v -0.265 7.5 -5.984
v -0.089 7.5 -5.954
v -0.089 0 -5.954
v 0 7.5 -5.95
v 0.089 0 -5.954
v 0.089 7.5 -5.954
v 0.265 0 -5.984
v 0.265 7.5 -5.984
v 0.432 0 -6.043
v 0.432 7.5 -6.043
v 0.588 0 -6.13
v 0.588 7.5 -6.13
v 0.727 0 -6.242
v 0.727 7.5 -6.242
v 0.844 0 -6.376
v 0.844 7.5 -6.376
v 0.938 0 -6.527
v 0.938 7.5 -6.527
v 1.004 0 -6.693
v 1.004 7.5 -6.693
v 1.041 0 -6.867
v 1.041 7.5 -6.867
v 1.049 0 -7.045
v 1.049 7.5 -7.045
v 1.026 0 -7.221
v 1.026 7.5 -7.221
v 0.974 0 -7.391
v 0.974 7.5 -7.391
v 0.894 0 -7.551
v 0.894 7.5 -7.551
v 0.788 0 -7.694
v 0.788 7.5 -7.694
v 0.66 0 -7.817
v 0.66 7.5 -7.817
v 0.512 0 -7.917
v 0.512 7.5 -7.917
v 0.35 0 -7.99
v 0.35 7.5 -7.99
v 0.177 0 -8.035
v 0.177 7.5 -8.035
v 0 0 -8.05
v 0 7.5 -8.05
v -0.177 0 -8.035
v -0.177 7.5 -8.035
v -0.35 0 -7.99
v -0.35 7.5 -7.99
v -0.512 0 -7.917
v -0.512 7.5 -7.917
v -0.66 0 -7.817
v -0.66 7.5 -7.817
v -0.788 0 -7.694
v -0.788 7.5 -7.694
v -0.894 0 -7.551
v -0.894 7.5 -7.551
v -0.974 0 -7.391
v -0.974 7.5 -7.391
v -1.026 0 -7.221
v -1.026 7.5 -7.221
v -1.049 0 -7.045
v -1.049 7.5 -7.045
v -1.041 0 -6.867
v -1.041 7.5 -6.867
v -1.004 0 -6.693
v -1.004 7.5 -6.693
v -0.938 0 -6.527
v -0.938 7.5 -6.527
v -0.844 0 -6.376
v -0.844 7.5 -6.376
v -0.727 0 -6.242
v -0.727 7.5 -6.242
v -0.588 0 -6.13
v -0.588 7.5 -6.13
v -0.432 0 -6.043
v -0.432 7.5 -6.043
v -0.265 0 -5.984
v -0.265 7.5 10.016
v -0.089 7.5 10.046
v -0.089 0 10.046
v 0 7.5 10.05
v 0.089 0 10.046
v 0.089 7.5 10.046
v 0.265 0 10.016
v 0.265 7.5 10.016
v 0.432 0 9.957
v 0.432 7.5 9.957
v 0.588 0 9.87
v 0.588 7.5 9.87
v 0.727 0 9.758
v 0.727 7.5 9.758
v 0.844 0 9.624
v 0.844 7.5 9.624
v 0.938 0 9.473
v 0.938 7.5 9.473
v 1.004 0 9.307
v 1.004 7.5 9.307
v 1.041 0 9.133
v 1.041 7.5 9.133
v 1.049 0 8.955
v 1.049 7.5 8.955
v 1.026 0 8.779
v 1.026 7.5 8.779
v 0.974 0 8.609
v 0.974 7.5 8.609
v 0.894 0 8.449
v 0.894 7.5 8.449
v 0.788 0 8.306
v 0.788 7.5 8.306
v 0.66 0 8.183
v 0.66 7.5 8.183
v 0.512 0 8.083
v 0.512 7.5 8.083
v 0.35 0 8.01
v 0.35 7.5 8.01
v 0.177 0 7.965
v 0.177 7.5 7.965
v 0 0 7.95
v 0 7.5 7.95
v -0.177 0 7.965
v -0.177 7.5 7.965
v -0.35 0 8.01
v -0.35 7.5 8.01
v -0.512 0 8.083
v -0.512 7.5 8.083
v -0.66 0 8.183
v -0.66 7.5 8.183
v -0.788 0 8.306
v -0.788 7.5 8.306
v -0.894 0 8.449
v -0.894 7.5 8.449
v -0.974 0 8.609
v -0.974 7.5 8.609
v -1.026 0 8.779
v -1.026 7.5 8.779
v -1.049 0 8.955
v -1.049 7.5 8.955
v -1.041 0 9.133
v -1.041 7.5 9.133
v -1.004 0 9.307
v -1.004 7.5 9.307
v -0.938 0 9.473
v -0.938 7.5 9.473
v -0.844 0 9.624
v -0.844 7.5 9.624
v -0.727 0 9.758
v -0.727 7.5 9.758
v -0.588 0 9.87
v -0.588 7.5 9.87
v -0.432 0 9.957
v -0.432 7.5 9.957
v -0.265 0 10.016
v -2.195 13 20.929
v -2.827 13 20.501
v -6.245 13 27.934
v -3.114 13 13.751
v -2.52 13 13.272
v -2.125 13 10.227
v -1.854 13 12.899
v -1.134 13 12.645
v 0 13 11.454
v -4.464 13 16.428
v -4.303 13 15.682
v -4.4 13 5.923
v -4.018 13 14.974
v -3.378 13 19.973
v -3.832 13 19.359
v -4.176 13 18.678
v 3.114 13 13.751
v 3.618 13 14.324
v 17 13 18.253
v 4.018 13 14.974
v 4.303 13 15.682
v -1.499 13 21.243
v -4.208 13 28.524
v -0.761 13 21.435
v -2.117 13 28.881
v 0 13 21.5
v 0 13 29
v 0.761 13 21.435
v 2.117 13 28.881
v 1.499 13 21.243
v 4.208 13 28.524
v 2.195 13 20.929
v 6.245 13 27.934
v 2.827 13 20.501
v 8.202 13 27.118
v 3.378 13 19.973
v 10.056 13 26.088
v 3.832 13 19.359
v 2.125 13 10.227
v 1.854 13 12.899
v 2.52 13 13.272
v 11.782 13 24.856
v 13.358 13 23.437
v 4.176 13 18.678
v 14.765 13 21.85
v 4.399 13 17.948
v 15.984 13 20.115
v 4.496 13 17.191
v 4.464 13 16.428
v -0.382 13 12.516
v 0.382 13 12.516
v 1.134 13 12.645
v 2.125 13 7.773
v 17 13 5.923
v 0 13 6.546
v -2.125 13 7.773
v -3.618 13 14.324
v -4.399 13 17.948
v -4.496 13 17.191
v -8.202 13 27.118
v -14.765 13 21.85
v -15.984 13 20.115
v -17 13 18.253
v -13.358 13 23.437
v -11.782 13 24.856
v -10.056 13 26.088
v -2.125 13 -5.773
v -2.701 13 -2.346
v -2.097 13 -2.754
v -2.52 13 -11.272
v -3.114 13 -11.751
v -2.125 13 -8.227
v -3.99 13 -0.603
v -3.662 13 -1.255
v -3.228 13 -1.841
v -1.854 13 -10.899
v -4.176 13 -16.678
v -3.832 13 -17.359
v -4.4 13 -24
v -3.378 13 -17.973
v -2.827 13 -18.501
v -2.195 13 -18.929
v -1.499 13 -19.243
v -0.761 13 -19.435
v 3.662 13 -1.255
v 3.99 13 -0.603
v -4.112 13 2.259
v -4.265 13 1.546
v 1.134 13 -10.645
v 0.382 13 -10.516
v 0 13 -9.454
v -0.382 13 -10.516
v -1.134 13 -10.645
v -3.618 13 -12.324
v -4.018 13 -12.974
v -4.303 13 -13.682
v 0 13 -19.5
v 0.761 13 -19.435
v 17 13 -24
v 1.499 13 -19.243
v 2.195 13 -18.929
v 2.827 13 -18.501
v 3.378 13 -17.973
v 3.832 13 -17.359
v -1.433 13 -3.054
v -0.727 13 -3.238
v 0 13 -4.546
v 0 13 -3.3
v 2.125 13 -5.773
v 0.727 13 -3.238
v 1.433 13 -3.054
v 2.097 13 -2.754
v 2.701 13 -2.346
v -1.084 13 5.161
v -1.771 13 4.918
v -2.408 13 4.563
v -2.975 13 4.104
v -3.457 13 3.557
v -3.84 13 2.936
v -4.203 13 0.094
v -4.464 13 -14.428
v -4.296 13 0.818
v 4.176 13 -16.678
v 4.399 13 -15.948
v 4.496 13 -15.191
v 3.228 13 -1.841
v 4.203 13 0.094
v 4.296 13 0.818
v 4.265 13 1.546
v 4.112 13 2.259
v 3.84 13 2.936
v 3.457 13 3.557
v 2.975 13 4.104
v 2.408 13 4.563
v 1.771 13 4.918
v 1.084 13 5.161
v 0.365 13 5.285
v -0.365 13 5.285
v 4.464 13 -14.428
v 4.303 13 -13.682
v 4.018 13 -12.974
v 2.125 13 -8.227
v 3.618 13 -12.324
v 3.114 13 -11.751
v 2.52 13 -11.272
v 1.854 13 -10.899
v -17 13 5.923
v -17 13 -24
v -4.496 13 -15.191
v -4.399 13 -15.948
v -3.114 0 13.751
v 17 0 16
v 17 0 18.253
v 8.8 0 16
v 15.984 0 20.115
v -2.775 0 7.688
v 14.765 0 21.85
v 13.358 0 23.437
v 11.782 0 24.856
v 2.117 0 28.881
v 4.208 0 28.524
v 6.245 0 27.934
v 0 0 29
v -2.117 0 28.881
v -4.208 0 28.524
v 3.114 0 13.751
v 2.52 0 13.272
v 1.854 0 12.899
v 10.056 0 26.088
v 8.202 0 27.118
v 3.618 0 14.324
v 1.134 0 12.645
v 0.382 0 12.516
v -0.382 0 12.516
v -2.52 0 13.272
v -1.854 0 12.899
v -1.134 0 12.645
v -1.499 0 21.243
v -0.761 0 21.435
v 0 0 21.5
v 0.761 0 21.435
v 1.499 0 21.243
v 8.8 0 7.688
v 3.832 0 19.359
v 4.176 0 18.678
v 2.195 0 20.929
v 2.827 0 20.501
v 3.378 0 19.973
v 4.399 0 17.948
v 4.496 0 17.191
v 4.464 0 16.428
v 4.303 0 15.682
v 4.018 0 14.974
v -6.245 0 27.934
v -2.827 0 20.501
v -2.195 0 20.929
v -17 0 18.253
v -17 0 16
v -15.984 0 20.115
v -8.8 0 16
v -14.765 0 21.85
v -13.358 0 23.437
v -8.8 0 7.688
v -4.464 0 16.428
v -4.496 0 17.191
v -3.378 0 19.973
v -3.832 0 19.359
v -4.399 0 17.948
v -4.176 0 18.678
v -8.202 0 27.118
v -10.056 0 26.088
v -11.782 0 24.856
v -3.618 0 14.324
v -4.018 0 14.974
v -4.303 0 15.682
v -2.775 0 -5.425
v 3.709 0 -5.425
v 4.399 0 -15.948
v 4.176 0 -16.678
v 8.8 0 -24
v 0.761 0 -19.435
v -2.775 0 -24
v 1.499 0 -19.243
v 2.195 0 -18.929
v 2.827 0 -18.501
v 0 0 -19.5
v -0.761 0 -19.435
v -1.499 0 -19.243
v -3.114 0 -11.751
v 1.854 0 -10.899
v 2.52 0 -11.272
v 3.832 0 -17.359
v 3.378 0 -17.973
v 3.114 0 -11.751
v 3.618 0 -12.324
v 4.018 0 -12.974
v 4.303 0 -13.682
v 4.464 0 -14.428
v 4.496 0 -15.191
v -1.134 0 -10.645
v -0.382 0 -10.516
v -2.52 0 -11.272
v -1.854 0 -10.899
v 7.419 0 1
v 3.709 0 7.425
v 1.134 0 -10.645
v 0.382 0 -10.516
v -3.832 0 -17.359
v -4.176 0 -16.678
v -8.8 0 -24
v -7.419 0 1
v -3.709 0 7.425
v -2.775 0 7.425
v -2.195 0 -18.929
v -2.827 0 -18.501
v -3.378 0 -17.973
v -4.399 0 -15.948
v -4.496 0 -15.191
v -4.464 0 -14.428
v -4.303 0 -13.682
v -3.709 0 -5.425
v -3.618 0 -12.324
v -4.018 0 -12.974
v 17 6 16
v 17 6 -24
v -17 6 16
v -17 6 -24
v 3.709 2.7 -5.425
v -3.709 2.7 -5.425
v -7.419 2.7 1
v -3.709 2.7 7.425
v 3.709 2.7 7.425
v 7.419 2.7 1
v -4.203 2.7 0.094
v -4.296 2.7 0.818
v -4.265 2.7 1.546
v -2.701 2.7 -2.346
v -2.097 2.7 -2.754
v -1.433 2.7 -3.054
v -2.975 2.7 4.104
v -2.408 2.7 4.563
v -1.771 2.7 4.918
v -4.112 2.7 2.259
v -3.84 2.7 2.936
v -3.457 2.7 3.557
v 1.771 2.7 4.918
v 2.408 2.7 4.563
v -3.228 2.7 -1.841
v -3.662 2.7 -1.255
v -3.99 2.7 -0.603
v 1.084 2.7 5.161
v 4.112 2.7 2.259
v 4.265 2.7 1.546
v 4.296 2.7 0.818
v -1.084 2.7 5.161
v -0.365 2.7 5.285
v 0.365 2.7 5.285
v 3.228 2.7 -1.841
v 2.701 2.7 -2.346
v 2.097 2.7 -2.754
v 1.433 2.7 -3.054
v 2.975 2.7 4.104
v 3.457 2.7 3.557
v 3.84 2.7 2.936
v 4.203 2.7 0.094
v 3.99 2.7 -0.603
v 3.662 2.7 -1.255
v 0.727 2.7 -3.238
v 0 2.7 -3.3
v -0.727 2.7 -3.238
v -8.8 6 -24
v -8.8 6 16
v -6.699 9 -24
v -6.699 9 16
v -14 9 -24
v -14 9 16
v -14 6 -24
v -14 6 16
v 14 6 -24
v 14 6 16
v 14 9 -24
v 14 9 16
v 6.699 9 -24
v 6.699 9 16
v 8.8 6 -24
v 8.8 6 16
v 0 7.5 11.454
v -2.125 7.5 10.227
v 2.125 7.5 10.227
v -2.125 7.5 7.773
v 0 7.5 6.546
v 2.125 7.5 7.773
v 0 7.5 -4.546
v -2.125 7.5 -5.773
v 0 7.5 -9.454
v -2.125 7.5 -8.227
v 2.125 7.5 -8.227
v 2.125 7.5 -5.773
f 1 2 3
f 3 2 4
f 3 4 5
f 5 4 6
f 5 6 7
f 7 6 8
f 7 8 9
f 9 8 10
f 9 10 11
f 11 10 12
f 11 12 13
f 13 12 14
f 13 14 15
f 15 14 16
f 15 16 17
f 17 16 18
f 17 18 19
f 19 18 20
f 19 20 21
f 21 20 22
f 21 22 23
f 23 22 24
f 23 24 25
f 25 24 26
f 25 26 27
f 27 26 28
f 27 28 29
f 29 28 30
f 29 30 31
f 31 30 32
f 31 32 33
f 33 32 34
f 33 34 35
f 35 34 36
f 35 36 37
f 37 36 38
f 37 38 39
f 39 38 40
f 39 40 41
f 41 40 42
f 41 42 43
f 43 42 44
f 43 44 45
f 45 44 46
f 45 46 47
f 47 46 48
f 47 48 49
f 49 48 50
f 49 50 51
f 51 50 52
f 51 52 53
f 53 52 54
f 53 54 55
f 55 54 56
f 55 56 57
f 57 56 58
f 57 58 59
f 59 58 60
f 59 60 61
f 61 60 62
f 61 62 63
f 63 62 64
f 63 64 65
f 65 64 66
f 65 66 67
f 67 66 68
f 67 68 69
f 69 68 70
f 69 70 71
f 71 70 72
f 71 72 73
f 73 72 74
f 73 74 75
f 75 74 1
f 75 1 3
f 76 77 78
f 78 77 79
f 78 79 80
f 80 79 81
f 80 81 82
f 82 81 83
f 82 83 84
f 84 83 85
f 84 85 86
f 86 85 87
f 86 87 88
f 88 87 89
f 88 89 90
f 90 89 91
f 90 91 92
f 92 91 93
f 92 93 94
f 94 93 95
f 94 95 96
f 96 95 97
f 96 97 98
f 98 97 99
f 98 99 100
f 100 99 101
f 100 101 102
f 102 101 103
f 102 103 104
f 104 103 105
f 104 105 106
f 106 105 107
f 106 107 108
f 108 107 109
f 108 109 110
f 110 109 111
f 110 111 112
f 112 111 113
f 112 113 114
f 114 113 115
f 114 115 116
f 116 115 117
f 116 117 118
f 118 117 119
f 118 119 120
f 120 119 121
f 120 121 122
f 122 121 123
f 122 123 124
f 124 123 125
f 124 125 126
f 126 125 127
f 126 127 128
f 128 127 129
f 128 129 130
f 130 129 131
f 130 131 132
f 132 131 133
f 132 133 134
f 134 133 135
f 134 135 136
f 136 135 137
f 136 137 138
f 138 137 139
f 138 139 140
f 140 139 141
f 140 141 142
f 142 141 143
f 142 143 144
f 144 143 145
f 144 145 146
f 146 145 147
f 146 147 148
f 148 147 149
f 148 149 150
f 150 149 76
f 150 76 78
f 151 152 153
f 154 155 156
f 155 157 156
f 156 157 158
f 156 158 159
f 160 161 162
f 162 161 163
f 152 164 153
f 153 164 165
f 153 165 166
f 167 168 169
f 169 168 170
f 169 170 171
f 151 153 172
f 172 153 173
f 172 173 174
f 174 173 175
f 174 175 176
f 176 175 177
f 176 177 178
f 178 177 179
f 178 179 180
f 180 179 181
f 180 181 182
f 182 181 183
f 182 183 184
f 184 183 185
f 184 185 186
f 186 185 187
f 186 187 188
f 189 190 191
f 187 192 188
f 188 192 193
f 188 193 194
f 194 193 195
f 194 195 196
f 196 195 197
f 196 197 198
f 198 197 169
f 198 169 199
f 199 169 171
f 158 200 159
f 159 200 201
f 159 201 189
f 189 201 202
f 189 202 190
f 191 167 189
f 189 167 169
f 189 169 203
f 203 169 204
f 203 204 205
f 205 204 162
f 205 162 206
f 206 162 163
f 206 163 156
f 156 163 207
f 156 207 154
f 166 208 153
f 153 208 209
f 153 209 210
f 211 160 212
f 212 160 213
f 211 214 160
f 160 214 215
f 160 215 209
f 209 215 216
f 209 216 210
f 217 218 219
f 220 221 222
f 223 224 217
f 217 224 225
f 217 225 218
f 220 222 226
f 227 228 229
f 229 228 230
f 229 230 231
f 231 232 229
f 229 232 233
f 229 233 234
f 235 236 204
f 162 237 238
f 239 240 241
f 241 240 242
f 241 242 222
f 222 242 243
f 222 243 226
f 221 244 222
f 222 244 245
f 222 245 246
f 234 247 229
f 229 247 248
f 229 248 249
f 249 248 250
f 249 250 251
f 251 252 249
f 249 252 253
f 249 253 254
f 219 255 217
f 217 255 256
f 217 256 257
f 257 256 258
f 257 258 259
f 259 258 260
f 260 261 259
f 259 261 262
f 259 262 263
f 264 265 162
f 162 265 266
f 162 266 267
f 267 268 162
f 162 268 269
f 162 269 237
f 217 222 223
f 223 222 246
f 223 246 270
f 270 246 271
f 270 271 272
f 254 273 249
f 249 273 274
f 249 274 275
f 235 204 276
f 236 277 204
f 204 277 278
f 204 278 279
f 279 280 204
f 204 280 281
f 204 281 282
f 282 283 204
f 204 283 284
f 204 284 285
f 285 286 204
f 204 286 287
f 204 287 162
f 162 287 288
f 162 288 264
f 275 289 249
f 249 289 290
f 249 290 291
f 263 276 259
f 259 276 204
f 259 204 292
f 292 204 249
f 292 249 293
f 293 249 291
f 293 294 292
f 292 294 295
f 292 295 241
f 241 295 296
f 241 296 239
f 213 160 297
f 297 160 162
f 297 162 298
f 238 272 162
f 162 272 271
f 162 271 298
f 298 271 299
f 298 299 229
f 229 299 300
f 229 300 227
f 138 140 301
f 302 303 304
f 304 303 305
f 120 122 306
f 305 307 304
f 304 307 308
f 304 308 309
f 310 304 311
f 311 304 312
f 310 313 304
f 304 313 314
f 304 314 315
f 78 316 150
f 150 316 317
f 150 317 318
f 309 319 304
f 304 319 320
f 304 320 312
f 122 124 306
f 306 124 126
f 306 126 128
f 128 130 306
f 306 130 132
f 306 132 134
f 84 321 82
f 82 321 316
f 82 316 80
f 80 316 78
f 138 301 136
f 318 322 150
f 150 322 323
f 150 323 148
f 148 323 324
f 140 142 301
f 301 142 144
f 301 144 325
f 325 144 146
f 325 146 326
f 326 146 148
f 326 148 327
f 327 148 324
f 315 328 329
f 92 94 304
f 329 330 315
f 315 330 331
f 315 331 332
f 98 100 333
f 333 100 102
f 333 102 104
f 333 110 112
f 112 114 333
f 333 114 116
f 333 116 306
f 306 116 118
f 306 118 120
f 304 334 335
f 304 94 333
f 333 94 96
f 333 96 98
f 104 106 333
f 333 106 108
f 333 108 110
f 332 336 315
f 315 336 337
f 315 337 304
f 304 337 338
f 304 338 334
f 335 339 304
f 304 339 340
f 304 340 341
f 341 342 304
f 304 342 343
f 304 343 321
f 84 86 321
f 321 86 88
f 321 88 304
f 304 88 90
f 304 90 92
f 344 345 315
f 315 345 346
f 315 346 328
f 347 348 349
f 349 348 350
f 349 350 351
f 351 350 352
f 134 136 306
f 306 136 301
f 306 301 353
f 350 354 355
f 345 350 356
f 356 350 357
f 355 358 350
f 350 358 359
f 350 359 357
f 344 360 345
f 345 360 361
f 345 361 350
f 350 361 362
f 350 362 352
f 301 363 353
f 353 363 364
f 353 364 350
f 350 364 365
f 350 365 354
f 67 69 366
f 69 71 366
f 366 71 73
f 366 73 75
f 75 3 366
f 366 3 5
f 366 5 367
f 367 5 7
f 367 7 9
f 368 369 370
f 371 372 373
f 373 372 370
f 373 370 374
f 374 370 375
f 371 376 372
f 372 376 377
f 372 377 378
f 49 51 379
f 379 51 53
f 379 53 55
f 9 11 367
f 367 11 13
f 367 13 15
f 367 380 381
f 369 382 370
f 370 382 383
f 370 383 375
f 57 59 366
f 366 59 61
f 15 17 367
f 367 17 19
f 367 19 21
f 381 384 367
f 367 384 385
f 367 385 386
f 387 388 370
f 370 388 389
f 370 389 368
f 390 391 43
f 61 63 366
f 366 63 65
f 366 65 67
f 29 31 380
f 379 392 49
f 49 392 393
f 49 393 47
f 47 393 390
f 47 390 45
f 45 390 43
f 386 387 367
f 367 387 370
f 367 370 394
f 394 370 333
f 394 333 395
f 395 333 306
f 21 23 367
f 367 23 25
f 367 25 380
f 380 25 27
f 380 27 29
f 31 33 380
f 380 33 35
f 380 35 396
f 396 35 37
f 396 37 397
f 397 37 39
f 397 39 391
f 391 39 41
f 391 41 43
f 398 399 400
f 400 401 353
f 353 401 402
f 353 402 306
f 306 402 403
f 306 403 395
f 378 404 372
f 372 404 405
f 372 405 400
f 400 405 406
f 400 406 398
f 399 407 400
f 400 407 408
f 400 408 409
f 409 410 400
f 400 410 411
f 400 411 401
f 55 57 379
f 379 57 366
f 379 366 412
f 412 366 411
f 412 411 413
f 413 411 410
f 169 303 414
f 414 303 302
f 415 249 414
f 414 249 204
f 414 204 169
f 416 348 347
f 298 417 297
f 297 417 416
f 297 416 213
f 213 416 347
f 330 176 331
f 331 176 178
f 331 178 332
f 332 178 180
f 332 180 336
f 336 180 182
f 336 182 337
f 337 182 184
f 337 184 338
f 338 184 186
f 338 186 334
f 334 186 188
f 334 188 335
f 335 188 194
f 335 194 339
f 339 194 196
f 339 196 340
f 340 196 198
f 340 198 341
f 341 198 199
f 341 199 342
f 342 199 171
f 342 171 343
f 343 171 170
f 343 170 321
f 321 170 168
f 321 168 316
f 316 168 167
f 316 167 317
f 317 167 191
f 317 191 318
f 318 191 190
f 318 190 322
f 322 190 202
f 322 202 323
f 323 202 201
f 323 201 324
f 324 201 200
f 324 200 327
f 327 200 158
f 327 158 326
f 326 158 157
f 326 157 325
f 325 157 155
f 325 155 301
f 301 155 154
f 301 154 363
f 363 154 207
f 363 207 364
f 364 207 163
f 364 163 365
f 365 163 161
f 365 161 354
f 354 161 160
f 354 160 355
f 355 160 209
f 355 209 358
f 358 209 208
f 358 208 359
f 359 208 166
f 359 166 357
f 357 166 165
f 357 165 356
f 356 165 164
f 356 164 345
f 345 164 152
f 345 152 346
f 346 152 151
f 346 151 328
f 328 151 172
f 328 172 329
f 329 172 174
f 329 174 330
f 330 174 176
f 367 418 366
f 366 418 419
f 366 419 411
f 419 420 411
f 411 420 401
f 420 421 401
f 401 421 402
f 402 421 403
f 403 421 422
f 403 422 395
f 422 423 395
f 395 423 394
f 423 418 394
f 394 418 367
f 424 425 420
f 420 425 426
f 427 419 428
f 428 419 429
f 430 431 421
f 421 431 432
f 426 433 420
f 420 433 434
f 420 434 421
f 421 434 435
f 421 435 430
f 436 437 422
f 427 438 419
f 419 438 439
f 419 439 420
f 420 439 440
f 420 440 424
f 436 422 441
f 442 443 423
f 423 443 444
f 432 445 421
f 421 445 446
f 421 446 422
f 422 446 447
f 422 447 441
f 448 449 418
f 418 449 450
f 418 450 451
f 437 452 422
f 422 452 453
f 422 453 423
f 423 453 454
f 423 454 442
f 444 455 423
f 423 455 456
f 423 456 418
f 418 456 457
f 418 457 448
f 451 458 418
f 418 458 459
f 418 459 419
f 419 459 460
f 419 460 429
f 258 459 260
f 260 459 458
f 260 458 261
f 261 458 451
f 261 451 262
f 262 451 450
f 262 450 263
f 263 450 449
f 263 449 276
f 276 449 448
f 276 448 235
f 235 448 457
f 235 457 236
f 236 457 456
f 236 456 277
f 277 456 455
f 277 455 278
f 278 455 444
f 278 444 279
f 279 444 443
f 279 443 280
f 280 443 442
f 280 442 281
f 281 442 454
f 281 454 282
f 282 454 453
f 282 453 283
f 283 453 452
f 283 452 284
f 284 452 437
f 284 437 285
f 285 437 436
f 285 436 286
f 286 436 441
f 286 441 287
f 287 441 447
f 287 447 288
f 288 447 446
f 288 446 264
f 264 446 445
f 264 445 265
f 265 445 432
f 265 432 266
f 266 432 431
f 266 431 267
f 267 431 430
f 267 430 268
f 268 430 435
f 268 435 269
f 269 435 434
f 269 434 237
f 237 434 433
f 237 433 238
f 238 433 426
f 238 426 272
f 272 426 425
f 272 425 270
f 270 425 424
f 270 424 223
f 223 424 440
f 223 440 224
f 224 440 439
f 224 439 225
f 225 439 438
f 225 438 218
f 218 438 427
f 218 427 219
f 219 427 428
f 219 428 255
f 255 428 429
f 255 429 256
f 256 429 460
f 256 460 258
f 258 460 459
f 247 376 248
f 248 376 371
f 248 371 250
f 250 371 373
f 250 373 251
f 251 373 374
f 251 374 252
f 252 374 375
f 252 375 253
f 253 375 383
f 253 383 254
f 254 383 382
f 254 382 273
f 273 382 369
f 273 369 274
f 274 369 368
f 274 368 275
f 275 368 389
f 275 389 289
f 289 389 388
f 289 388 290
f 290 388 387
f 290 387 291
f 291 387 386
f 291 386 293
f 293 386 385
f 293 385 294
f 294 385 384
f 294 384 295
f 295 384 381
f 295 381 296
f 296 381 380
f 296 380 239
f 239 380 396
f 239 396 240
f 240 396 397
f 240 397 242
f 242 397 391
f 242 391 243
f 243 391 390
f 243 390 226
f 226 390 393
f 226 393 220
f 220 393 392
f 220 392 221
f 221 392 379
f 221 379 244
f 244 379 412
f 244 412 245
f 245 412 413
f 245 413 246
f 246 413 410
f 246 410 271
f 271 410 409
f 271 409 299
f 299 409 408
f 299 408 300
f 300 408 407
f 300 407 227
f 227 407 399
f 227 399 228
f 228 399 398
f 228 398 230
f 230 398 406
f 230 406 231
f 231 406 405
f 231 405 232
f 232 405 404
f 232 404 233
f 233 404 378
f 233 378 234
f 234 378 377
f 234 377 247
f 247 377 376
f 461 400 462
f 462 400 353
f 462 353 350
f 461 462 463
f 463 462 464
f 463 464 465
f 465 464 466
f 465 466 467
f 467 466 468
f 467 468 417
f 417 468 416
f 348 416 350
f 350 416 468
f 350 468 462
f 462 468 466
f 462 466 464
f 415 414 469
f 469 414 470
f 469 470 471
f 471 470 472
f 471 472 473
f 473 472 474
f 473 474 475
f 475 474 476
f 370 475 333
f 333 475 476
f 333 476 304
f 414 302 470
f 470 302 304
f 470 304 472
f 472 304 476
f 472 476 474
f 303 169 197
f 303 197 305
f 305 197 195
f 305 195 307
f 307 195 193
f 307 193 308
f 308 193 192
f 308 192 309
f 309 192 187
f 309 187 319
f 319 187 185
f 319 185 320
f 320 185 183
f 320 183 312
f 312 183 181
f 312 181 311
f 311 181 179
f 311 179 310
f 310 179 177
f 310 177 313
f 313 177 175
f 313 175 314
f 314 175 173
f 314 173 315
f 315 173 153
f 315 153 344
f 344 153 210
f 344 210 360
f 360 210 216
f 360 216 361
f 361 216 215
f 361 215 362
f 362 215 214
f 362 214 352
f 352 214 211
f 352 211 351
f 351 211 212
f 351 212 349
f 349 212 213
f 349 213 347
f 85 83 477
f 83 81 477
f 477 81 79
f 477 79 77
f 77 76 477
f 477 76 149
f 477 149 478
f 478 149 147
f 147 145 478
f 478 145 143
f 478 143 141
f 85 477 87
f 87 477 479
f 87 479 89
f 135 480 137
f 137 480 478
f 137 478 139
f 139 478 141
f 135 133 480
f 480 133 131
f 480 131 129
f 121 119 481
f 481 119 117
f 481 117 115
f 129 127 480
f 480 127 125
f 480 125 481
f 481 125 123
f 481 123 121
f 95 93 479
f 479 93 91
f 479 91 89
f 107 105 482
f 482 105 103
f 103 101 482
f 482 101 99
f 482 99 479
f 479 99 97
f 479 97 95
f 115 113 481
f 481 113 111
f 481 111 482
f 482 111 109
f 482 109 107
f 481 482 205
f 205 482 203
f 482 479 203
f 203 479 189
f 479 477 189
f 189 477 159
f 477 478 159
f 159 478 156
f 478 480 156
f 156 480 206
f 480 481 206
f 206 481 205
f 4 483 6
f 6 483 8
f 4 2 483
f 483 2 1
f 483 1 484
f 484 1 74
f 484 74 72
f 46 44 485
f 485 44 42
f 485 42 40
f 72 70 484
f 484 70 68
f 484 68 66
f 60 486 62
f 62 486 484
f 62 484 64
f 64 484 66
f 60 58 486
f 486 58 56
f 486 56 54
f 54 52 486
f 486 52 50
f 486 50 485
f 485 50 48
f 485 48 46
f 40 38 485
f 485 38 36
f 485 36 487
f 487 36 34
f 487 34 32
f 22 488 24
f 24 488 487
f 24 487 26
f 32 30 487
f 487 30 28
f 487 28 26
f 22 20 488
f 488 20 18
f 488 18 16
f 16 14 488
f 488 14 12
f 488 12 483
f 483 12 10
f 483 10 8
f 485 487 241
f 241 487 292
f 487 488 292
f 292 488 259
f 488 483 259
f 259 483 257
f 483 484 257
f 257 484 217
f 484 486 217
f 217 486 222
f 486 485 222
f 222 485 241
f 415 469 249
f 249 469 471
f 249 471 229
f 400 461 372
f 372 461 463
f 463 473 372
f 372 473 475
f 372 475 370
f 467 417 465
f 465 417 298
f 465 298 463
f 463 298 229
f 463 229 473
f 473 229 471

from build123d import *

# Parameters (mm, degrees)
SKETCH1_W           = 34
SKETCH1_H           = 58
BOSS_EXTRUDE1_DEPTH = 13
SKETCH3_W           = 4.5
SKETCH3_H           = 13
CUT_EXTRUDE1_DEPTH  = 2.7
SKETCH5_R           = 4.3
CUT_EXTRUDE2_DEPTH  = 36.158071619
SKETCH12_W          = 4.5
SKETCH12_H          = 13
CUT_EXTRUDE3_DEPTH  = 45
CUT_EXTRUDE4_DEPTH  = 37.041642582
SKETCH9_R           = 1.05
CUT_EXTRUDE6_DEPTH  = 13
CUT_EXTRUDE7_DEPTH  = 5.5
SKETCH13_W          = 34
SKETCH13_H          = 5
CUT_EXTRUDE8_DEPTH  = 15


with BuildPart() as part:
    # Sketch1 → Boss-Extrude1 (new body)
    with BuildSketch(Plane(origin=(0, 0, 0), x_dir=(1, 0, 0), z_dir=(0, 1, 0))):
        Rectangle(SKETCH1_W, SKETCH1_H)
    extrude(amount=BOSS_EXTRUDE1_DEPTH)

    # Sketch3 → Cut-Revolve1 (revolve, cut)
    with BuildSketch(Plane(origin=(0, 0, 0), x_dir=(0, 0, -1), z_dir=(1, 0, 0)), mode=Mode.PRIVATE) as cut_revolve1_sk:
        with Locations((-14.75, 6.5)):
            Rectangle(SKETCH3_W, SKETCH3_H)
    revolve(cut_revolve1_sk.sketch.rotate(Axis((0, 13, 17), (0, -1, 0)), 180), axis=Axis((0, 13, 17), (0, -1, 0)), mode=Mode.SUBTRACT)

    # Sketch4 → Cut-Extrude1 (cut)
    with BuildSketch(Plane.XZ):
        Polygon((3.70947548, -5.425), (7.418950959, 1), (3.70947548, 7.425), (-3.70947548, 7.425), (-7.418950959, 1), (-3.70947548, -5.425), align=None)
    extrude(amount=-CUT_EXTRUDE1_DEPTH, mode=Mode.SUBTRACT)

    # Sketch5 → Cut-Extrude2 (cut, through all)
    with BuildSketch(Plane.XZ.offset(-2.7)):
        with Locations(Location((0, 1, 0), (0, 0, 270))):
            Circle(SKETCH5_R)
    extrude(amount=-CUT_EXTRUDE2_DEPTH, mode=Mode.SUBTRACT)

    # Sketch12 → Cut-Revolve2 (revolve, cut)
    with BuildSketch(Plane(origin=(0, 0, 0), x_dir=(0, 0, -1), z_dir=(1, 0, 0))):
        with Locations((17.25, 6.5)):
            Rectangle(SKETCH12_W, SKETCH12_H)
    revolve(axis=Axis((0, 0, -15), (0, 1, 0)), mode=Mode.SUBTRACT)

    # Sketch6 → Cut-Extrude3 (cut)
    with BuildSketch(Plane(origin=(0, 0, -29), x_dir=(-1, 0, 0), z_dir=(0, 0, -1))):
        Polygon((-17, 6), (-14, 6), (-14, 9), (-6.699377385, 9), (-8.8, 6), (-8.8, 0), (-17, 0), align=None)
        Polygon((8.8, 0), (17, 0), (17, 6), (14, 6), (14, 9), (6.699377385, 9), (8.8, 6), align=None)
    extrude(amount=-CUT_EXTRUDE3_DEPTH, mode=Mode.SUBTRACT)

    # Sketch7 → Cut-Extrude4 (cut, through all)
    with BuildSketch(Plane(origin=(0, 13, 0), x_dir=(1, 0, 0), z_dir=(0, 1, 0))):
        with BuildLine():
            Line((17, -29), (17, -18.253317763))
            ThreePointArc((17, -18.253317763), (10.05598304, -26.088042865), (1.4e-08, -29))
            Line((1.4e-08, -29), (17, -29))
        make_face()
        with BuildLine():
            Line((-17, -29), (1.4e-08, -29))
            ThreePointArc((1.4e-08, -29), (-10.055983028, -26.088042873), (-17, -18.253317763))
            Line((-17, -18.253317763), (-17, -29))
        make_face()
    extrude(amount=-CUT_EXTRUDE4_DEPTH, mode=Mode.SUBTRACT)

    # Sketch9 → Cut-Extrude6 (cut)
    with BuildSketch(Plane.XZ):
        with Locations(Location((0, -7, 0), (0, 0, 270))):
            Circle(SKETCH9_R)
        with Locations(Location((0, 9, 0), (0, 0, 270))):
            Circle(SKETCH9_R)
    extrude(amount=-CUT_EXTRUDE6_DEPTH, mode=Mode.SUBTRACT)

    # Sketch10 → Cut-Extrude7 (cut)
    with BuildSketch(Plane(origin=(0, 13, 0), x_dir=(1, 0, 0), z_dir=(0, 1, 0))):
        Polygon((0, -6.546261356), (-2.125, -7.773130678), (-2.125, -10.226869322), (0, -11.453738644), (2.125, -10.226869322), (2.125, -7.773130678), align=None)
        Polygon((0, 9.453738644), (-2.125, 8.226869322), (-2.125, 5.773130678), (0, 4.546261356), (2.125, 5.773130678), (2.125, 8.226869322), align=None)
    extrude(amount=-CUT_EXTRUDE7_DEPTH, mode=Mode.SUBTRACT)

    # Sketch13 → Cut-Extrude8 (cut)
    with BuildSketch(Plane(origin=(0, 13, 0), x_dir=(1, 0, 0), z_dir=(0, 1, 0))):
        with Locations((0, 26.5)):
            Rectangle(SKETCH13_W, SKETCH13_H)
    extrude(amount=-CUT_EXTRUDE8_DEPTH, mode=Mode.SUBTRACT)


solid = part.part
